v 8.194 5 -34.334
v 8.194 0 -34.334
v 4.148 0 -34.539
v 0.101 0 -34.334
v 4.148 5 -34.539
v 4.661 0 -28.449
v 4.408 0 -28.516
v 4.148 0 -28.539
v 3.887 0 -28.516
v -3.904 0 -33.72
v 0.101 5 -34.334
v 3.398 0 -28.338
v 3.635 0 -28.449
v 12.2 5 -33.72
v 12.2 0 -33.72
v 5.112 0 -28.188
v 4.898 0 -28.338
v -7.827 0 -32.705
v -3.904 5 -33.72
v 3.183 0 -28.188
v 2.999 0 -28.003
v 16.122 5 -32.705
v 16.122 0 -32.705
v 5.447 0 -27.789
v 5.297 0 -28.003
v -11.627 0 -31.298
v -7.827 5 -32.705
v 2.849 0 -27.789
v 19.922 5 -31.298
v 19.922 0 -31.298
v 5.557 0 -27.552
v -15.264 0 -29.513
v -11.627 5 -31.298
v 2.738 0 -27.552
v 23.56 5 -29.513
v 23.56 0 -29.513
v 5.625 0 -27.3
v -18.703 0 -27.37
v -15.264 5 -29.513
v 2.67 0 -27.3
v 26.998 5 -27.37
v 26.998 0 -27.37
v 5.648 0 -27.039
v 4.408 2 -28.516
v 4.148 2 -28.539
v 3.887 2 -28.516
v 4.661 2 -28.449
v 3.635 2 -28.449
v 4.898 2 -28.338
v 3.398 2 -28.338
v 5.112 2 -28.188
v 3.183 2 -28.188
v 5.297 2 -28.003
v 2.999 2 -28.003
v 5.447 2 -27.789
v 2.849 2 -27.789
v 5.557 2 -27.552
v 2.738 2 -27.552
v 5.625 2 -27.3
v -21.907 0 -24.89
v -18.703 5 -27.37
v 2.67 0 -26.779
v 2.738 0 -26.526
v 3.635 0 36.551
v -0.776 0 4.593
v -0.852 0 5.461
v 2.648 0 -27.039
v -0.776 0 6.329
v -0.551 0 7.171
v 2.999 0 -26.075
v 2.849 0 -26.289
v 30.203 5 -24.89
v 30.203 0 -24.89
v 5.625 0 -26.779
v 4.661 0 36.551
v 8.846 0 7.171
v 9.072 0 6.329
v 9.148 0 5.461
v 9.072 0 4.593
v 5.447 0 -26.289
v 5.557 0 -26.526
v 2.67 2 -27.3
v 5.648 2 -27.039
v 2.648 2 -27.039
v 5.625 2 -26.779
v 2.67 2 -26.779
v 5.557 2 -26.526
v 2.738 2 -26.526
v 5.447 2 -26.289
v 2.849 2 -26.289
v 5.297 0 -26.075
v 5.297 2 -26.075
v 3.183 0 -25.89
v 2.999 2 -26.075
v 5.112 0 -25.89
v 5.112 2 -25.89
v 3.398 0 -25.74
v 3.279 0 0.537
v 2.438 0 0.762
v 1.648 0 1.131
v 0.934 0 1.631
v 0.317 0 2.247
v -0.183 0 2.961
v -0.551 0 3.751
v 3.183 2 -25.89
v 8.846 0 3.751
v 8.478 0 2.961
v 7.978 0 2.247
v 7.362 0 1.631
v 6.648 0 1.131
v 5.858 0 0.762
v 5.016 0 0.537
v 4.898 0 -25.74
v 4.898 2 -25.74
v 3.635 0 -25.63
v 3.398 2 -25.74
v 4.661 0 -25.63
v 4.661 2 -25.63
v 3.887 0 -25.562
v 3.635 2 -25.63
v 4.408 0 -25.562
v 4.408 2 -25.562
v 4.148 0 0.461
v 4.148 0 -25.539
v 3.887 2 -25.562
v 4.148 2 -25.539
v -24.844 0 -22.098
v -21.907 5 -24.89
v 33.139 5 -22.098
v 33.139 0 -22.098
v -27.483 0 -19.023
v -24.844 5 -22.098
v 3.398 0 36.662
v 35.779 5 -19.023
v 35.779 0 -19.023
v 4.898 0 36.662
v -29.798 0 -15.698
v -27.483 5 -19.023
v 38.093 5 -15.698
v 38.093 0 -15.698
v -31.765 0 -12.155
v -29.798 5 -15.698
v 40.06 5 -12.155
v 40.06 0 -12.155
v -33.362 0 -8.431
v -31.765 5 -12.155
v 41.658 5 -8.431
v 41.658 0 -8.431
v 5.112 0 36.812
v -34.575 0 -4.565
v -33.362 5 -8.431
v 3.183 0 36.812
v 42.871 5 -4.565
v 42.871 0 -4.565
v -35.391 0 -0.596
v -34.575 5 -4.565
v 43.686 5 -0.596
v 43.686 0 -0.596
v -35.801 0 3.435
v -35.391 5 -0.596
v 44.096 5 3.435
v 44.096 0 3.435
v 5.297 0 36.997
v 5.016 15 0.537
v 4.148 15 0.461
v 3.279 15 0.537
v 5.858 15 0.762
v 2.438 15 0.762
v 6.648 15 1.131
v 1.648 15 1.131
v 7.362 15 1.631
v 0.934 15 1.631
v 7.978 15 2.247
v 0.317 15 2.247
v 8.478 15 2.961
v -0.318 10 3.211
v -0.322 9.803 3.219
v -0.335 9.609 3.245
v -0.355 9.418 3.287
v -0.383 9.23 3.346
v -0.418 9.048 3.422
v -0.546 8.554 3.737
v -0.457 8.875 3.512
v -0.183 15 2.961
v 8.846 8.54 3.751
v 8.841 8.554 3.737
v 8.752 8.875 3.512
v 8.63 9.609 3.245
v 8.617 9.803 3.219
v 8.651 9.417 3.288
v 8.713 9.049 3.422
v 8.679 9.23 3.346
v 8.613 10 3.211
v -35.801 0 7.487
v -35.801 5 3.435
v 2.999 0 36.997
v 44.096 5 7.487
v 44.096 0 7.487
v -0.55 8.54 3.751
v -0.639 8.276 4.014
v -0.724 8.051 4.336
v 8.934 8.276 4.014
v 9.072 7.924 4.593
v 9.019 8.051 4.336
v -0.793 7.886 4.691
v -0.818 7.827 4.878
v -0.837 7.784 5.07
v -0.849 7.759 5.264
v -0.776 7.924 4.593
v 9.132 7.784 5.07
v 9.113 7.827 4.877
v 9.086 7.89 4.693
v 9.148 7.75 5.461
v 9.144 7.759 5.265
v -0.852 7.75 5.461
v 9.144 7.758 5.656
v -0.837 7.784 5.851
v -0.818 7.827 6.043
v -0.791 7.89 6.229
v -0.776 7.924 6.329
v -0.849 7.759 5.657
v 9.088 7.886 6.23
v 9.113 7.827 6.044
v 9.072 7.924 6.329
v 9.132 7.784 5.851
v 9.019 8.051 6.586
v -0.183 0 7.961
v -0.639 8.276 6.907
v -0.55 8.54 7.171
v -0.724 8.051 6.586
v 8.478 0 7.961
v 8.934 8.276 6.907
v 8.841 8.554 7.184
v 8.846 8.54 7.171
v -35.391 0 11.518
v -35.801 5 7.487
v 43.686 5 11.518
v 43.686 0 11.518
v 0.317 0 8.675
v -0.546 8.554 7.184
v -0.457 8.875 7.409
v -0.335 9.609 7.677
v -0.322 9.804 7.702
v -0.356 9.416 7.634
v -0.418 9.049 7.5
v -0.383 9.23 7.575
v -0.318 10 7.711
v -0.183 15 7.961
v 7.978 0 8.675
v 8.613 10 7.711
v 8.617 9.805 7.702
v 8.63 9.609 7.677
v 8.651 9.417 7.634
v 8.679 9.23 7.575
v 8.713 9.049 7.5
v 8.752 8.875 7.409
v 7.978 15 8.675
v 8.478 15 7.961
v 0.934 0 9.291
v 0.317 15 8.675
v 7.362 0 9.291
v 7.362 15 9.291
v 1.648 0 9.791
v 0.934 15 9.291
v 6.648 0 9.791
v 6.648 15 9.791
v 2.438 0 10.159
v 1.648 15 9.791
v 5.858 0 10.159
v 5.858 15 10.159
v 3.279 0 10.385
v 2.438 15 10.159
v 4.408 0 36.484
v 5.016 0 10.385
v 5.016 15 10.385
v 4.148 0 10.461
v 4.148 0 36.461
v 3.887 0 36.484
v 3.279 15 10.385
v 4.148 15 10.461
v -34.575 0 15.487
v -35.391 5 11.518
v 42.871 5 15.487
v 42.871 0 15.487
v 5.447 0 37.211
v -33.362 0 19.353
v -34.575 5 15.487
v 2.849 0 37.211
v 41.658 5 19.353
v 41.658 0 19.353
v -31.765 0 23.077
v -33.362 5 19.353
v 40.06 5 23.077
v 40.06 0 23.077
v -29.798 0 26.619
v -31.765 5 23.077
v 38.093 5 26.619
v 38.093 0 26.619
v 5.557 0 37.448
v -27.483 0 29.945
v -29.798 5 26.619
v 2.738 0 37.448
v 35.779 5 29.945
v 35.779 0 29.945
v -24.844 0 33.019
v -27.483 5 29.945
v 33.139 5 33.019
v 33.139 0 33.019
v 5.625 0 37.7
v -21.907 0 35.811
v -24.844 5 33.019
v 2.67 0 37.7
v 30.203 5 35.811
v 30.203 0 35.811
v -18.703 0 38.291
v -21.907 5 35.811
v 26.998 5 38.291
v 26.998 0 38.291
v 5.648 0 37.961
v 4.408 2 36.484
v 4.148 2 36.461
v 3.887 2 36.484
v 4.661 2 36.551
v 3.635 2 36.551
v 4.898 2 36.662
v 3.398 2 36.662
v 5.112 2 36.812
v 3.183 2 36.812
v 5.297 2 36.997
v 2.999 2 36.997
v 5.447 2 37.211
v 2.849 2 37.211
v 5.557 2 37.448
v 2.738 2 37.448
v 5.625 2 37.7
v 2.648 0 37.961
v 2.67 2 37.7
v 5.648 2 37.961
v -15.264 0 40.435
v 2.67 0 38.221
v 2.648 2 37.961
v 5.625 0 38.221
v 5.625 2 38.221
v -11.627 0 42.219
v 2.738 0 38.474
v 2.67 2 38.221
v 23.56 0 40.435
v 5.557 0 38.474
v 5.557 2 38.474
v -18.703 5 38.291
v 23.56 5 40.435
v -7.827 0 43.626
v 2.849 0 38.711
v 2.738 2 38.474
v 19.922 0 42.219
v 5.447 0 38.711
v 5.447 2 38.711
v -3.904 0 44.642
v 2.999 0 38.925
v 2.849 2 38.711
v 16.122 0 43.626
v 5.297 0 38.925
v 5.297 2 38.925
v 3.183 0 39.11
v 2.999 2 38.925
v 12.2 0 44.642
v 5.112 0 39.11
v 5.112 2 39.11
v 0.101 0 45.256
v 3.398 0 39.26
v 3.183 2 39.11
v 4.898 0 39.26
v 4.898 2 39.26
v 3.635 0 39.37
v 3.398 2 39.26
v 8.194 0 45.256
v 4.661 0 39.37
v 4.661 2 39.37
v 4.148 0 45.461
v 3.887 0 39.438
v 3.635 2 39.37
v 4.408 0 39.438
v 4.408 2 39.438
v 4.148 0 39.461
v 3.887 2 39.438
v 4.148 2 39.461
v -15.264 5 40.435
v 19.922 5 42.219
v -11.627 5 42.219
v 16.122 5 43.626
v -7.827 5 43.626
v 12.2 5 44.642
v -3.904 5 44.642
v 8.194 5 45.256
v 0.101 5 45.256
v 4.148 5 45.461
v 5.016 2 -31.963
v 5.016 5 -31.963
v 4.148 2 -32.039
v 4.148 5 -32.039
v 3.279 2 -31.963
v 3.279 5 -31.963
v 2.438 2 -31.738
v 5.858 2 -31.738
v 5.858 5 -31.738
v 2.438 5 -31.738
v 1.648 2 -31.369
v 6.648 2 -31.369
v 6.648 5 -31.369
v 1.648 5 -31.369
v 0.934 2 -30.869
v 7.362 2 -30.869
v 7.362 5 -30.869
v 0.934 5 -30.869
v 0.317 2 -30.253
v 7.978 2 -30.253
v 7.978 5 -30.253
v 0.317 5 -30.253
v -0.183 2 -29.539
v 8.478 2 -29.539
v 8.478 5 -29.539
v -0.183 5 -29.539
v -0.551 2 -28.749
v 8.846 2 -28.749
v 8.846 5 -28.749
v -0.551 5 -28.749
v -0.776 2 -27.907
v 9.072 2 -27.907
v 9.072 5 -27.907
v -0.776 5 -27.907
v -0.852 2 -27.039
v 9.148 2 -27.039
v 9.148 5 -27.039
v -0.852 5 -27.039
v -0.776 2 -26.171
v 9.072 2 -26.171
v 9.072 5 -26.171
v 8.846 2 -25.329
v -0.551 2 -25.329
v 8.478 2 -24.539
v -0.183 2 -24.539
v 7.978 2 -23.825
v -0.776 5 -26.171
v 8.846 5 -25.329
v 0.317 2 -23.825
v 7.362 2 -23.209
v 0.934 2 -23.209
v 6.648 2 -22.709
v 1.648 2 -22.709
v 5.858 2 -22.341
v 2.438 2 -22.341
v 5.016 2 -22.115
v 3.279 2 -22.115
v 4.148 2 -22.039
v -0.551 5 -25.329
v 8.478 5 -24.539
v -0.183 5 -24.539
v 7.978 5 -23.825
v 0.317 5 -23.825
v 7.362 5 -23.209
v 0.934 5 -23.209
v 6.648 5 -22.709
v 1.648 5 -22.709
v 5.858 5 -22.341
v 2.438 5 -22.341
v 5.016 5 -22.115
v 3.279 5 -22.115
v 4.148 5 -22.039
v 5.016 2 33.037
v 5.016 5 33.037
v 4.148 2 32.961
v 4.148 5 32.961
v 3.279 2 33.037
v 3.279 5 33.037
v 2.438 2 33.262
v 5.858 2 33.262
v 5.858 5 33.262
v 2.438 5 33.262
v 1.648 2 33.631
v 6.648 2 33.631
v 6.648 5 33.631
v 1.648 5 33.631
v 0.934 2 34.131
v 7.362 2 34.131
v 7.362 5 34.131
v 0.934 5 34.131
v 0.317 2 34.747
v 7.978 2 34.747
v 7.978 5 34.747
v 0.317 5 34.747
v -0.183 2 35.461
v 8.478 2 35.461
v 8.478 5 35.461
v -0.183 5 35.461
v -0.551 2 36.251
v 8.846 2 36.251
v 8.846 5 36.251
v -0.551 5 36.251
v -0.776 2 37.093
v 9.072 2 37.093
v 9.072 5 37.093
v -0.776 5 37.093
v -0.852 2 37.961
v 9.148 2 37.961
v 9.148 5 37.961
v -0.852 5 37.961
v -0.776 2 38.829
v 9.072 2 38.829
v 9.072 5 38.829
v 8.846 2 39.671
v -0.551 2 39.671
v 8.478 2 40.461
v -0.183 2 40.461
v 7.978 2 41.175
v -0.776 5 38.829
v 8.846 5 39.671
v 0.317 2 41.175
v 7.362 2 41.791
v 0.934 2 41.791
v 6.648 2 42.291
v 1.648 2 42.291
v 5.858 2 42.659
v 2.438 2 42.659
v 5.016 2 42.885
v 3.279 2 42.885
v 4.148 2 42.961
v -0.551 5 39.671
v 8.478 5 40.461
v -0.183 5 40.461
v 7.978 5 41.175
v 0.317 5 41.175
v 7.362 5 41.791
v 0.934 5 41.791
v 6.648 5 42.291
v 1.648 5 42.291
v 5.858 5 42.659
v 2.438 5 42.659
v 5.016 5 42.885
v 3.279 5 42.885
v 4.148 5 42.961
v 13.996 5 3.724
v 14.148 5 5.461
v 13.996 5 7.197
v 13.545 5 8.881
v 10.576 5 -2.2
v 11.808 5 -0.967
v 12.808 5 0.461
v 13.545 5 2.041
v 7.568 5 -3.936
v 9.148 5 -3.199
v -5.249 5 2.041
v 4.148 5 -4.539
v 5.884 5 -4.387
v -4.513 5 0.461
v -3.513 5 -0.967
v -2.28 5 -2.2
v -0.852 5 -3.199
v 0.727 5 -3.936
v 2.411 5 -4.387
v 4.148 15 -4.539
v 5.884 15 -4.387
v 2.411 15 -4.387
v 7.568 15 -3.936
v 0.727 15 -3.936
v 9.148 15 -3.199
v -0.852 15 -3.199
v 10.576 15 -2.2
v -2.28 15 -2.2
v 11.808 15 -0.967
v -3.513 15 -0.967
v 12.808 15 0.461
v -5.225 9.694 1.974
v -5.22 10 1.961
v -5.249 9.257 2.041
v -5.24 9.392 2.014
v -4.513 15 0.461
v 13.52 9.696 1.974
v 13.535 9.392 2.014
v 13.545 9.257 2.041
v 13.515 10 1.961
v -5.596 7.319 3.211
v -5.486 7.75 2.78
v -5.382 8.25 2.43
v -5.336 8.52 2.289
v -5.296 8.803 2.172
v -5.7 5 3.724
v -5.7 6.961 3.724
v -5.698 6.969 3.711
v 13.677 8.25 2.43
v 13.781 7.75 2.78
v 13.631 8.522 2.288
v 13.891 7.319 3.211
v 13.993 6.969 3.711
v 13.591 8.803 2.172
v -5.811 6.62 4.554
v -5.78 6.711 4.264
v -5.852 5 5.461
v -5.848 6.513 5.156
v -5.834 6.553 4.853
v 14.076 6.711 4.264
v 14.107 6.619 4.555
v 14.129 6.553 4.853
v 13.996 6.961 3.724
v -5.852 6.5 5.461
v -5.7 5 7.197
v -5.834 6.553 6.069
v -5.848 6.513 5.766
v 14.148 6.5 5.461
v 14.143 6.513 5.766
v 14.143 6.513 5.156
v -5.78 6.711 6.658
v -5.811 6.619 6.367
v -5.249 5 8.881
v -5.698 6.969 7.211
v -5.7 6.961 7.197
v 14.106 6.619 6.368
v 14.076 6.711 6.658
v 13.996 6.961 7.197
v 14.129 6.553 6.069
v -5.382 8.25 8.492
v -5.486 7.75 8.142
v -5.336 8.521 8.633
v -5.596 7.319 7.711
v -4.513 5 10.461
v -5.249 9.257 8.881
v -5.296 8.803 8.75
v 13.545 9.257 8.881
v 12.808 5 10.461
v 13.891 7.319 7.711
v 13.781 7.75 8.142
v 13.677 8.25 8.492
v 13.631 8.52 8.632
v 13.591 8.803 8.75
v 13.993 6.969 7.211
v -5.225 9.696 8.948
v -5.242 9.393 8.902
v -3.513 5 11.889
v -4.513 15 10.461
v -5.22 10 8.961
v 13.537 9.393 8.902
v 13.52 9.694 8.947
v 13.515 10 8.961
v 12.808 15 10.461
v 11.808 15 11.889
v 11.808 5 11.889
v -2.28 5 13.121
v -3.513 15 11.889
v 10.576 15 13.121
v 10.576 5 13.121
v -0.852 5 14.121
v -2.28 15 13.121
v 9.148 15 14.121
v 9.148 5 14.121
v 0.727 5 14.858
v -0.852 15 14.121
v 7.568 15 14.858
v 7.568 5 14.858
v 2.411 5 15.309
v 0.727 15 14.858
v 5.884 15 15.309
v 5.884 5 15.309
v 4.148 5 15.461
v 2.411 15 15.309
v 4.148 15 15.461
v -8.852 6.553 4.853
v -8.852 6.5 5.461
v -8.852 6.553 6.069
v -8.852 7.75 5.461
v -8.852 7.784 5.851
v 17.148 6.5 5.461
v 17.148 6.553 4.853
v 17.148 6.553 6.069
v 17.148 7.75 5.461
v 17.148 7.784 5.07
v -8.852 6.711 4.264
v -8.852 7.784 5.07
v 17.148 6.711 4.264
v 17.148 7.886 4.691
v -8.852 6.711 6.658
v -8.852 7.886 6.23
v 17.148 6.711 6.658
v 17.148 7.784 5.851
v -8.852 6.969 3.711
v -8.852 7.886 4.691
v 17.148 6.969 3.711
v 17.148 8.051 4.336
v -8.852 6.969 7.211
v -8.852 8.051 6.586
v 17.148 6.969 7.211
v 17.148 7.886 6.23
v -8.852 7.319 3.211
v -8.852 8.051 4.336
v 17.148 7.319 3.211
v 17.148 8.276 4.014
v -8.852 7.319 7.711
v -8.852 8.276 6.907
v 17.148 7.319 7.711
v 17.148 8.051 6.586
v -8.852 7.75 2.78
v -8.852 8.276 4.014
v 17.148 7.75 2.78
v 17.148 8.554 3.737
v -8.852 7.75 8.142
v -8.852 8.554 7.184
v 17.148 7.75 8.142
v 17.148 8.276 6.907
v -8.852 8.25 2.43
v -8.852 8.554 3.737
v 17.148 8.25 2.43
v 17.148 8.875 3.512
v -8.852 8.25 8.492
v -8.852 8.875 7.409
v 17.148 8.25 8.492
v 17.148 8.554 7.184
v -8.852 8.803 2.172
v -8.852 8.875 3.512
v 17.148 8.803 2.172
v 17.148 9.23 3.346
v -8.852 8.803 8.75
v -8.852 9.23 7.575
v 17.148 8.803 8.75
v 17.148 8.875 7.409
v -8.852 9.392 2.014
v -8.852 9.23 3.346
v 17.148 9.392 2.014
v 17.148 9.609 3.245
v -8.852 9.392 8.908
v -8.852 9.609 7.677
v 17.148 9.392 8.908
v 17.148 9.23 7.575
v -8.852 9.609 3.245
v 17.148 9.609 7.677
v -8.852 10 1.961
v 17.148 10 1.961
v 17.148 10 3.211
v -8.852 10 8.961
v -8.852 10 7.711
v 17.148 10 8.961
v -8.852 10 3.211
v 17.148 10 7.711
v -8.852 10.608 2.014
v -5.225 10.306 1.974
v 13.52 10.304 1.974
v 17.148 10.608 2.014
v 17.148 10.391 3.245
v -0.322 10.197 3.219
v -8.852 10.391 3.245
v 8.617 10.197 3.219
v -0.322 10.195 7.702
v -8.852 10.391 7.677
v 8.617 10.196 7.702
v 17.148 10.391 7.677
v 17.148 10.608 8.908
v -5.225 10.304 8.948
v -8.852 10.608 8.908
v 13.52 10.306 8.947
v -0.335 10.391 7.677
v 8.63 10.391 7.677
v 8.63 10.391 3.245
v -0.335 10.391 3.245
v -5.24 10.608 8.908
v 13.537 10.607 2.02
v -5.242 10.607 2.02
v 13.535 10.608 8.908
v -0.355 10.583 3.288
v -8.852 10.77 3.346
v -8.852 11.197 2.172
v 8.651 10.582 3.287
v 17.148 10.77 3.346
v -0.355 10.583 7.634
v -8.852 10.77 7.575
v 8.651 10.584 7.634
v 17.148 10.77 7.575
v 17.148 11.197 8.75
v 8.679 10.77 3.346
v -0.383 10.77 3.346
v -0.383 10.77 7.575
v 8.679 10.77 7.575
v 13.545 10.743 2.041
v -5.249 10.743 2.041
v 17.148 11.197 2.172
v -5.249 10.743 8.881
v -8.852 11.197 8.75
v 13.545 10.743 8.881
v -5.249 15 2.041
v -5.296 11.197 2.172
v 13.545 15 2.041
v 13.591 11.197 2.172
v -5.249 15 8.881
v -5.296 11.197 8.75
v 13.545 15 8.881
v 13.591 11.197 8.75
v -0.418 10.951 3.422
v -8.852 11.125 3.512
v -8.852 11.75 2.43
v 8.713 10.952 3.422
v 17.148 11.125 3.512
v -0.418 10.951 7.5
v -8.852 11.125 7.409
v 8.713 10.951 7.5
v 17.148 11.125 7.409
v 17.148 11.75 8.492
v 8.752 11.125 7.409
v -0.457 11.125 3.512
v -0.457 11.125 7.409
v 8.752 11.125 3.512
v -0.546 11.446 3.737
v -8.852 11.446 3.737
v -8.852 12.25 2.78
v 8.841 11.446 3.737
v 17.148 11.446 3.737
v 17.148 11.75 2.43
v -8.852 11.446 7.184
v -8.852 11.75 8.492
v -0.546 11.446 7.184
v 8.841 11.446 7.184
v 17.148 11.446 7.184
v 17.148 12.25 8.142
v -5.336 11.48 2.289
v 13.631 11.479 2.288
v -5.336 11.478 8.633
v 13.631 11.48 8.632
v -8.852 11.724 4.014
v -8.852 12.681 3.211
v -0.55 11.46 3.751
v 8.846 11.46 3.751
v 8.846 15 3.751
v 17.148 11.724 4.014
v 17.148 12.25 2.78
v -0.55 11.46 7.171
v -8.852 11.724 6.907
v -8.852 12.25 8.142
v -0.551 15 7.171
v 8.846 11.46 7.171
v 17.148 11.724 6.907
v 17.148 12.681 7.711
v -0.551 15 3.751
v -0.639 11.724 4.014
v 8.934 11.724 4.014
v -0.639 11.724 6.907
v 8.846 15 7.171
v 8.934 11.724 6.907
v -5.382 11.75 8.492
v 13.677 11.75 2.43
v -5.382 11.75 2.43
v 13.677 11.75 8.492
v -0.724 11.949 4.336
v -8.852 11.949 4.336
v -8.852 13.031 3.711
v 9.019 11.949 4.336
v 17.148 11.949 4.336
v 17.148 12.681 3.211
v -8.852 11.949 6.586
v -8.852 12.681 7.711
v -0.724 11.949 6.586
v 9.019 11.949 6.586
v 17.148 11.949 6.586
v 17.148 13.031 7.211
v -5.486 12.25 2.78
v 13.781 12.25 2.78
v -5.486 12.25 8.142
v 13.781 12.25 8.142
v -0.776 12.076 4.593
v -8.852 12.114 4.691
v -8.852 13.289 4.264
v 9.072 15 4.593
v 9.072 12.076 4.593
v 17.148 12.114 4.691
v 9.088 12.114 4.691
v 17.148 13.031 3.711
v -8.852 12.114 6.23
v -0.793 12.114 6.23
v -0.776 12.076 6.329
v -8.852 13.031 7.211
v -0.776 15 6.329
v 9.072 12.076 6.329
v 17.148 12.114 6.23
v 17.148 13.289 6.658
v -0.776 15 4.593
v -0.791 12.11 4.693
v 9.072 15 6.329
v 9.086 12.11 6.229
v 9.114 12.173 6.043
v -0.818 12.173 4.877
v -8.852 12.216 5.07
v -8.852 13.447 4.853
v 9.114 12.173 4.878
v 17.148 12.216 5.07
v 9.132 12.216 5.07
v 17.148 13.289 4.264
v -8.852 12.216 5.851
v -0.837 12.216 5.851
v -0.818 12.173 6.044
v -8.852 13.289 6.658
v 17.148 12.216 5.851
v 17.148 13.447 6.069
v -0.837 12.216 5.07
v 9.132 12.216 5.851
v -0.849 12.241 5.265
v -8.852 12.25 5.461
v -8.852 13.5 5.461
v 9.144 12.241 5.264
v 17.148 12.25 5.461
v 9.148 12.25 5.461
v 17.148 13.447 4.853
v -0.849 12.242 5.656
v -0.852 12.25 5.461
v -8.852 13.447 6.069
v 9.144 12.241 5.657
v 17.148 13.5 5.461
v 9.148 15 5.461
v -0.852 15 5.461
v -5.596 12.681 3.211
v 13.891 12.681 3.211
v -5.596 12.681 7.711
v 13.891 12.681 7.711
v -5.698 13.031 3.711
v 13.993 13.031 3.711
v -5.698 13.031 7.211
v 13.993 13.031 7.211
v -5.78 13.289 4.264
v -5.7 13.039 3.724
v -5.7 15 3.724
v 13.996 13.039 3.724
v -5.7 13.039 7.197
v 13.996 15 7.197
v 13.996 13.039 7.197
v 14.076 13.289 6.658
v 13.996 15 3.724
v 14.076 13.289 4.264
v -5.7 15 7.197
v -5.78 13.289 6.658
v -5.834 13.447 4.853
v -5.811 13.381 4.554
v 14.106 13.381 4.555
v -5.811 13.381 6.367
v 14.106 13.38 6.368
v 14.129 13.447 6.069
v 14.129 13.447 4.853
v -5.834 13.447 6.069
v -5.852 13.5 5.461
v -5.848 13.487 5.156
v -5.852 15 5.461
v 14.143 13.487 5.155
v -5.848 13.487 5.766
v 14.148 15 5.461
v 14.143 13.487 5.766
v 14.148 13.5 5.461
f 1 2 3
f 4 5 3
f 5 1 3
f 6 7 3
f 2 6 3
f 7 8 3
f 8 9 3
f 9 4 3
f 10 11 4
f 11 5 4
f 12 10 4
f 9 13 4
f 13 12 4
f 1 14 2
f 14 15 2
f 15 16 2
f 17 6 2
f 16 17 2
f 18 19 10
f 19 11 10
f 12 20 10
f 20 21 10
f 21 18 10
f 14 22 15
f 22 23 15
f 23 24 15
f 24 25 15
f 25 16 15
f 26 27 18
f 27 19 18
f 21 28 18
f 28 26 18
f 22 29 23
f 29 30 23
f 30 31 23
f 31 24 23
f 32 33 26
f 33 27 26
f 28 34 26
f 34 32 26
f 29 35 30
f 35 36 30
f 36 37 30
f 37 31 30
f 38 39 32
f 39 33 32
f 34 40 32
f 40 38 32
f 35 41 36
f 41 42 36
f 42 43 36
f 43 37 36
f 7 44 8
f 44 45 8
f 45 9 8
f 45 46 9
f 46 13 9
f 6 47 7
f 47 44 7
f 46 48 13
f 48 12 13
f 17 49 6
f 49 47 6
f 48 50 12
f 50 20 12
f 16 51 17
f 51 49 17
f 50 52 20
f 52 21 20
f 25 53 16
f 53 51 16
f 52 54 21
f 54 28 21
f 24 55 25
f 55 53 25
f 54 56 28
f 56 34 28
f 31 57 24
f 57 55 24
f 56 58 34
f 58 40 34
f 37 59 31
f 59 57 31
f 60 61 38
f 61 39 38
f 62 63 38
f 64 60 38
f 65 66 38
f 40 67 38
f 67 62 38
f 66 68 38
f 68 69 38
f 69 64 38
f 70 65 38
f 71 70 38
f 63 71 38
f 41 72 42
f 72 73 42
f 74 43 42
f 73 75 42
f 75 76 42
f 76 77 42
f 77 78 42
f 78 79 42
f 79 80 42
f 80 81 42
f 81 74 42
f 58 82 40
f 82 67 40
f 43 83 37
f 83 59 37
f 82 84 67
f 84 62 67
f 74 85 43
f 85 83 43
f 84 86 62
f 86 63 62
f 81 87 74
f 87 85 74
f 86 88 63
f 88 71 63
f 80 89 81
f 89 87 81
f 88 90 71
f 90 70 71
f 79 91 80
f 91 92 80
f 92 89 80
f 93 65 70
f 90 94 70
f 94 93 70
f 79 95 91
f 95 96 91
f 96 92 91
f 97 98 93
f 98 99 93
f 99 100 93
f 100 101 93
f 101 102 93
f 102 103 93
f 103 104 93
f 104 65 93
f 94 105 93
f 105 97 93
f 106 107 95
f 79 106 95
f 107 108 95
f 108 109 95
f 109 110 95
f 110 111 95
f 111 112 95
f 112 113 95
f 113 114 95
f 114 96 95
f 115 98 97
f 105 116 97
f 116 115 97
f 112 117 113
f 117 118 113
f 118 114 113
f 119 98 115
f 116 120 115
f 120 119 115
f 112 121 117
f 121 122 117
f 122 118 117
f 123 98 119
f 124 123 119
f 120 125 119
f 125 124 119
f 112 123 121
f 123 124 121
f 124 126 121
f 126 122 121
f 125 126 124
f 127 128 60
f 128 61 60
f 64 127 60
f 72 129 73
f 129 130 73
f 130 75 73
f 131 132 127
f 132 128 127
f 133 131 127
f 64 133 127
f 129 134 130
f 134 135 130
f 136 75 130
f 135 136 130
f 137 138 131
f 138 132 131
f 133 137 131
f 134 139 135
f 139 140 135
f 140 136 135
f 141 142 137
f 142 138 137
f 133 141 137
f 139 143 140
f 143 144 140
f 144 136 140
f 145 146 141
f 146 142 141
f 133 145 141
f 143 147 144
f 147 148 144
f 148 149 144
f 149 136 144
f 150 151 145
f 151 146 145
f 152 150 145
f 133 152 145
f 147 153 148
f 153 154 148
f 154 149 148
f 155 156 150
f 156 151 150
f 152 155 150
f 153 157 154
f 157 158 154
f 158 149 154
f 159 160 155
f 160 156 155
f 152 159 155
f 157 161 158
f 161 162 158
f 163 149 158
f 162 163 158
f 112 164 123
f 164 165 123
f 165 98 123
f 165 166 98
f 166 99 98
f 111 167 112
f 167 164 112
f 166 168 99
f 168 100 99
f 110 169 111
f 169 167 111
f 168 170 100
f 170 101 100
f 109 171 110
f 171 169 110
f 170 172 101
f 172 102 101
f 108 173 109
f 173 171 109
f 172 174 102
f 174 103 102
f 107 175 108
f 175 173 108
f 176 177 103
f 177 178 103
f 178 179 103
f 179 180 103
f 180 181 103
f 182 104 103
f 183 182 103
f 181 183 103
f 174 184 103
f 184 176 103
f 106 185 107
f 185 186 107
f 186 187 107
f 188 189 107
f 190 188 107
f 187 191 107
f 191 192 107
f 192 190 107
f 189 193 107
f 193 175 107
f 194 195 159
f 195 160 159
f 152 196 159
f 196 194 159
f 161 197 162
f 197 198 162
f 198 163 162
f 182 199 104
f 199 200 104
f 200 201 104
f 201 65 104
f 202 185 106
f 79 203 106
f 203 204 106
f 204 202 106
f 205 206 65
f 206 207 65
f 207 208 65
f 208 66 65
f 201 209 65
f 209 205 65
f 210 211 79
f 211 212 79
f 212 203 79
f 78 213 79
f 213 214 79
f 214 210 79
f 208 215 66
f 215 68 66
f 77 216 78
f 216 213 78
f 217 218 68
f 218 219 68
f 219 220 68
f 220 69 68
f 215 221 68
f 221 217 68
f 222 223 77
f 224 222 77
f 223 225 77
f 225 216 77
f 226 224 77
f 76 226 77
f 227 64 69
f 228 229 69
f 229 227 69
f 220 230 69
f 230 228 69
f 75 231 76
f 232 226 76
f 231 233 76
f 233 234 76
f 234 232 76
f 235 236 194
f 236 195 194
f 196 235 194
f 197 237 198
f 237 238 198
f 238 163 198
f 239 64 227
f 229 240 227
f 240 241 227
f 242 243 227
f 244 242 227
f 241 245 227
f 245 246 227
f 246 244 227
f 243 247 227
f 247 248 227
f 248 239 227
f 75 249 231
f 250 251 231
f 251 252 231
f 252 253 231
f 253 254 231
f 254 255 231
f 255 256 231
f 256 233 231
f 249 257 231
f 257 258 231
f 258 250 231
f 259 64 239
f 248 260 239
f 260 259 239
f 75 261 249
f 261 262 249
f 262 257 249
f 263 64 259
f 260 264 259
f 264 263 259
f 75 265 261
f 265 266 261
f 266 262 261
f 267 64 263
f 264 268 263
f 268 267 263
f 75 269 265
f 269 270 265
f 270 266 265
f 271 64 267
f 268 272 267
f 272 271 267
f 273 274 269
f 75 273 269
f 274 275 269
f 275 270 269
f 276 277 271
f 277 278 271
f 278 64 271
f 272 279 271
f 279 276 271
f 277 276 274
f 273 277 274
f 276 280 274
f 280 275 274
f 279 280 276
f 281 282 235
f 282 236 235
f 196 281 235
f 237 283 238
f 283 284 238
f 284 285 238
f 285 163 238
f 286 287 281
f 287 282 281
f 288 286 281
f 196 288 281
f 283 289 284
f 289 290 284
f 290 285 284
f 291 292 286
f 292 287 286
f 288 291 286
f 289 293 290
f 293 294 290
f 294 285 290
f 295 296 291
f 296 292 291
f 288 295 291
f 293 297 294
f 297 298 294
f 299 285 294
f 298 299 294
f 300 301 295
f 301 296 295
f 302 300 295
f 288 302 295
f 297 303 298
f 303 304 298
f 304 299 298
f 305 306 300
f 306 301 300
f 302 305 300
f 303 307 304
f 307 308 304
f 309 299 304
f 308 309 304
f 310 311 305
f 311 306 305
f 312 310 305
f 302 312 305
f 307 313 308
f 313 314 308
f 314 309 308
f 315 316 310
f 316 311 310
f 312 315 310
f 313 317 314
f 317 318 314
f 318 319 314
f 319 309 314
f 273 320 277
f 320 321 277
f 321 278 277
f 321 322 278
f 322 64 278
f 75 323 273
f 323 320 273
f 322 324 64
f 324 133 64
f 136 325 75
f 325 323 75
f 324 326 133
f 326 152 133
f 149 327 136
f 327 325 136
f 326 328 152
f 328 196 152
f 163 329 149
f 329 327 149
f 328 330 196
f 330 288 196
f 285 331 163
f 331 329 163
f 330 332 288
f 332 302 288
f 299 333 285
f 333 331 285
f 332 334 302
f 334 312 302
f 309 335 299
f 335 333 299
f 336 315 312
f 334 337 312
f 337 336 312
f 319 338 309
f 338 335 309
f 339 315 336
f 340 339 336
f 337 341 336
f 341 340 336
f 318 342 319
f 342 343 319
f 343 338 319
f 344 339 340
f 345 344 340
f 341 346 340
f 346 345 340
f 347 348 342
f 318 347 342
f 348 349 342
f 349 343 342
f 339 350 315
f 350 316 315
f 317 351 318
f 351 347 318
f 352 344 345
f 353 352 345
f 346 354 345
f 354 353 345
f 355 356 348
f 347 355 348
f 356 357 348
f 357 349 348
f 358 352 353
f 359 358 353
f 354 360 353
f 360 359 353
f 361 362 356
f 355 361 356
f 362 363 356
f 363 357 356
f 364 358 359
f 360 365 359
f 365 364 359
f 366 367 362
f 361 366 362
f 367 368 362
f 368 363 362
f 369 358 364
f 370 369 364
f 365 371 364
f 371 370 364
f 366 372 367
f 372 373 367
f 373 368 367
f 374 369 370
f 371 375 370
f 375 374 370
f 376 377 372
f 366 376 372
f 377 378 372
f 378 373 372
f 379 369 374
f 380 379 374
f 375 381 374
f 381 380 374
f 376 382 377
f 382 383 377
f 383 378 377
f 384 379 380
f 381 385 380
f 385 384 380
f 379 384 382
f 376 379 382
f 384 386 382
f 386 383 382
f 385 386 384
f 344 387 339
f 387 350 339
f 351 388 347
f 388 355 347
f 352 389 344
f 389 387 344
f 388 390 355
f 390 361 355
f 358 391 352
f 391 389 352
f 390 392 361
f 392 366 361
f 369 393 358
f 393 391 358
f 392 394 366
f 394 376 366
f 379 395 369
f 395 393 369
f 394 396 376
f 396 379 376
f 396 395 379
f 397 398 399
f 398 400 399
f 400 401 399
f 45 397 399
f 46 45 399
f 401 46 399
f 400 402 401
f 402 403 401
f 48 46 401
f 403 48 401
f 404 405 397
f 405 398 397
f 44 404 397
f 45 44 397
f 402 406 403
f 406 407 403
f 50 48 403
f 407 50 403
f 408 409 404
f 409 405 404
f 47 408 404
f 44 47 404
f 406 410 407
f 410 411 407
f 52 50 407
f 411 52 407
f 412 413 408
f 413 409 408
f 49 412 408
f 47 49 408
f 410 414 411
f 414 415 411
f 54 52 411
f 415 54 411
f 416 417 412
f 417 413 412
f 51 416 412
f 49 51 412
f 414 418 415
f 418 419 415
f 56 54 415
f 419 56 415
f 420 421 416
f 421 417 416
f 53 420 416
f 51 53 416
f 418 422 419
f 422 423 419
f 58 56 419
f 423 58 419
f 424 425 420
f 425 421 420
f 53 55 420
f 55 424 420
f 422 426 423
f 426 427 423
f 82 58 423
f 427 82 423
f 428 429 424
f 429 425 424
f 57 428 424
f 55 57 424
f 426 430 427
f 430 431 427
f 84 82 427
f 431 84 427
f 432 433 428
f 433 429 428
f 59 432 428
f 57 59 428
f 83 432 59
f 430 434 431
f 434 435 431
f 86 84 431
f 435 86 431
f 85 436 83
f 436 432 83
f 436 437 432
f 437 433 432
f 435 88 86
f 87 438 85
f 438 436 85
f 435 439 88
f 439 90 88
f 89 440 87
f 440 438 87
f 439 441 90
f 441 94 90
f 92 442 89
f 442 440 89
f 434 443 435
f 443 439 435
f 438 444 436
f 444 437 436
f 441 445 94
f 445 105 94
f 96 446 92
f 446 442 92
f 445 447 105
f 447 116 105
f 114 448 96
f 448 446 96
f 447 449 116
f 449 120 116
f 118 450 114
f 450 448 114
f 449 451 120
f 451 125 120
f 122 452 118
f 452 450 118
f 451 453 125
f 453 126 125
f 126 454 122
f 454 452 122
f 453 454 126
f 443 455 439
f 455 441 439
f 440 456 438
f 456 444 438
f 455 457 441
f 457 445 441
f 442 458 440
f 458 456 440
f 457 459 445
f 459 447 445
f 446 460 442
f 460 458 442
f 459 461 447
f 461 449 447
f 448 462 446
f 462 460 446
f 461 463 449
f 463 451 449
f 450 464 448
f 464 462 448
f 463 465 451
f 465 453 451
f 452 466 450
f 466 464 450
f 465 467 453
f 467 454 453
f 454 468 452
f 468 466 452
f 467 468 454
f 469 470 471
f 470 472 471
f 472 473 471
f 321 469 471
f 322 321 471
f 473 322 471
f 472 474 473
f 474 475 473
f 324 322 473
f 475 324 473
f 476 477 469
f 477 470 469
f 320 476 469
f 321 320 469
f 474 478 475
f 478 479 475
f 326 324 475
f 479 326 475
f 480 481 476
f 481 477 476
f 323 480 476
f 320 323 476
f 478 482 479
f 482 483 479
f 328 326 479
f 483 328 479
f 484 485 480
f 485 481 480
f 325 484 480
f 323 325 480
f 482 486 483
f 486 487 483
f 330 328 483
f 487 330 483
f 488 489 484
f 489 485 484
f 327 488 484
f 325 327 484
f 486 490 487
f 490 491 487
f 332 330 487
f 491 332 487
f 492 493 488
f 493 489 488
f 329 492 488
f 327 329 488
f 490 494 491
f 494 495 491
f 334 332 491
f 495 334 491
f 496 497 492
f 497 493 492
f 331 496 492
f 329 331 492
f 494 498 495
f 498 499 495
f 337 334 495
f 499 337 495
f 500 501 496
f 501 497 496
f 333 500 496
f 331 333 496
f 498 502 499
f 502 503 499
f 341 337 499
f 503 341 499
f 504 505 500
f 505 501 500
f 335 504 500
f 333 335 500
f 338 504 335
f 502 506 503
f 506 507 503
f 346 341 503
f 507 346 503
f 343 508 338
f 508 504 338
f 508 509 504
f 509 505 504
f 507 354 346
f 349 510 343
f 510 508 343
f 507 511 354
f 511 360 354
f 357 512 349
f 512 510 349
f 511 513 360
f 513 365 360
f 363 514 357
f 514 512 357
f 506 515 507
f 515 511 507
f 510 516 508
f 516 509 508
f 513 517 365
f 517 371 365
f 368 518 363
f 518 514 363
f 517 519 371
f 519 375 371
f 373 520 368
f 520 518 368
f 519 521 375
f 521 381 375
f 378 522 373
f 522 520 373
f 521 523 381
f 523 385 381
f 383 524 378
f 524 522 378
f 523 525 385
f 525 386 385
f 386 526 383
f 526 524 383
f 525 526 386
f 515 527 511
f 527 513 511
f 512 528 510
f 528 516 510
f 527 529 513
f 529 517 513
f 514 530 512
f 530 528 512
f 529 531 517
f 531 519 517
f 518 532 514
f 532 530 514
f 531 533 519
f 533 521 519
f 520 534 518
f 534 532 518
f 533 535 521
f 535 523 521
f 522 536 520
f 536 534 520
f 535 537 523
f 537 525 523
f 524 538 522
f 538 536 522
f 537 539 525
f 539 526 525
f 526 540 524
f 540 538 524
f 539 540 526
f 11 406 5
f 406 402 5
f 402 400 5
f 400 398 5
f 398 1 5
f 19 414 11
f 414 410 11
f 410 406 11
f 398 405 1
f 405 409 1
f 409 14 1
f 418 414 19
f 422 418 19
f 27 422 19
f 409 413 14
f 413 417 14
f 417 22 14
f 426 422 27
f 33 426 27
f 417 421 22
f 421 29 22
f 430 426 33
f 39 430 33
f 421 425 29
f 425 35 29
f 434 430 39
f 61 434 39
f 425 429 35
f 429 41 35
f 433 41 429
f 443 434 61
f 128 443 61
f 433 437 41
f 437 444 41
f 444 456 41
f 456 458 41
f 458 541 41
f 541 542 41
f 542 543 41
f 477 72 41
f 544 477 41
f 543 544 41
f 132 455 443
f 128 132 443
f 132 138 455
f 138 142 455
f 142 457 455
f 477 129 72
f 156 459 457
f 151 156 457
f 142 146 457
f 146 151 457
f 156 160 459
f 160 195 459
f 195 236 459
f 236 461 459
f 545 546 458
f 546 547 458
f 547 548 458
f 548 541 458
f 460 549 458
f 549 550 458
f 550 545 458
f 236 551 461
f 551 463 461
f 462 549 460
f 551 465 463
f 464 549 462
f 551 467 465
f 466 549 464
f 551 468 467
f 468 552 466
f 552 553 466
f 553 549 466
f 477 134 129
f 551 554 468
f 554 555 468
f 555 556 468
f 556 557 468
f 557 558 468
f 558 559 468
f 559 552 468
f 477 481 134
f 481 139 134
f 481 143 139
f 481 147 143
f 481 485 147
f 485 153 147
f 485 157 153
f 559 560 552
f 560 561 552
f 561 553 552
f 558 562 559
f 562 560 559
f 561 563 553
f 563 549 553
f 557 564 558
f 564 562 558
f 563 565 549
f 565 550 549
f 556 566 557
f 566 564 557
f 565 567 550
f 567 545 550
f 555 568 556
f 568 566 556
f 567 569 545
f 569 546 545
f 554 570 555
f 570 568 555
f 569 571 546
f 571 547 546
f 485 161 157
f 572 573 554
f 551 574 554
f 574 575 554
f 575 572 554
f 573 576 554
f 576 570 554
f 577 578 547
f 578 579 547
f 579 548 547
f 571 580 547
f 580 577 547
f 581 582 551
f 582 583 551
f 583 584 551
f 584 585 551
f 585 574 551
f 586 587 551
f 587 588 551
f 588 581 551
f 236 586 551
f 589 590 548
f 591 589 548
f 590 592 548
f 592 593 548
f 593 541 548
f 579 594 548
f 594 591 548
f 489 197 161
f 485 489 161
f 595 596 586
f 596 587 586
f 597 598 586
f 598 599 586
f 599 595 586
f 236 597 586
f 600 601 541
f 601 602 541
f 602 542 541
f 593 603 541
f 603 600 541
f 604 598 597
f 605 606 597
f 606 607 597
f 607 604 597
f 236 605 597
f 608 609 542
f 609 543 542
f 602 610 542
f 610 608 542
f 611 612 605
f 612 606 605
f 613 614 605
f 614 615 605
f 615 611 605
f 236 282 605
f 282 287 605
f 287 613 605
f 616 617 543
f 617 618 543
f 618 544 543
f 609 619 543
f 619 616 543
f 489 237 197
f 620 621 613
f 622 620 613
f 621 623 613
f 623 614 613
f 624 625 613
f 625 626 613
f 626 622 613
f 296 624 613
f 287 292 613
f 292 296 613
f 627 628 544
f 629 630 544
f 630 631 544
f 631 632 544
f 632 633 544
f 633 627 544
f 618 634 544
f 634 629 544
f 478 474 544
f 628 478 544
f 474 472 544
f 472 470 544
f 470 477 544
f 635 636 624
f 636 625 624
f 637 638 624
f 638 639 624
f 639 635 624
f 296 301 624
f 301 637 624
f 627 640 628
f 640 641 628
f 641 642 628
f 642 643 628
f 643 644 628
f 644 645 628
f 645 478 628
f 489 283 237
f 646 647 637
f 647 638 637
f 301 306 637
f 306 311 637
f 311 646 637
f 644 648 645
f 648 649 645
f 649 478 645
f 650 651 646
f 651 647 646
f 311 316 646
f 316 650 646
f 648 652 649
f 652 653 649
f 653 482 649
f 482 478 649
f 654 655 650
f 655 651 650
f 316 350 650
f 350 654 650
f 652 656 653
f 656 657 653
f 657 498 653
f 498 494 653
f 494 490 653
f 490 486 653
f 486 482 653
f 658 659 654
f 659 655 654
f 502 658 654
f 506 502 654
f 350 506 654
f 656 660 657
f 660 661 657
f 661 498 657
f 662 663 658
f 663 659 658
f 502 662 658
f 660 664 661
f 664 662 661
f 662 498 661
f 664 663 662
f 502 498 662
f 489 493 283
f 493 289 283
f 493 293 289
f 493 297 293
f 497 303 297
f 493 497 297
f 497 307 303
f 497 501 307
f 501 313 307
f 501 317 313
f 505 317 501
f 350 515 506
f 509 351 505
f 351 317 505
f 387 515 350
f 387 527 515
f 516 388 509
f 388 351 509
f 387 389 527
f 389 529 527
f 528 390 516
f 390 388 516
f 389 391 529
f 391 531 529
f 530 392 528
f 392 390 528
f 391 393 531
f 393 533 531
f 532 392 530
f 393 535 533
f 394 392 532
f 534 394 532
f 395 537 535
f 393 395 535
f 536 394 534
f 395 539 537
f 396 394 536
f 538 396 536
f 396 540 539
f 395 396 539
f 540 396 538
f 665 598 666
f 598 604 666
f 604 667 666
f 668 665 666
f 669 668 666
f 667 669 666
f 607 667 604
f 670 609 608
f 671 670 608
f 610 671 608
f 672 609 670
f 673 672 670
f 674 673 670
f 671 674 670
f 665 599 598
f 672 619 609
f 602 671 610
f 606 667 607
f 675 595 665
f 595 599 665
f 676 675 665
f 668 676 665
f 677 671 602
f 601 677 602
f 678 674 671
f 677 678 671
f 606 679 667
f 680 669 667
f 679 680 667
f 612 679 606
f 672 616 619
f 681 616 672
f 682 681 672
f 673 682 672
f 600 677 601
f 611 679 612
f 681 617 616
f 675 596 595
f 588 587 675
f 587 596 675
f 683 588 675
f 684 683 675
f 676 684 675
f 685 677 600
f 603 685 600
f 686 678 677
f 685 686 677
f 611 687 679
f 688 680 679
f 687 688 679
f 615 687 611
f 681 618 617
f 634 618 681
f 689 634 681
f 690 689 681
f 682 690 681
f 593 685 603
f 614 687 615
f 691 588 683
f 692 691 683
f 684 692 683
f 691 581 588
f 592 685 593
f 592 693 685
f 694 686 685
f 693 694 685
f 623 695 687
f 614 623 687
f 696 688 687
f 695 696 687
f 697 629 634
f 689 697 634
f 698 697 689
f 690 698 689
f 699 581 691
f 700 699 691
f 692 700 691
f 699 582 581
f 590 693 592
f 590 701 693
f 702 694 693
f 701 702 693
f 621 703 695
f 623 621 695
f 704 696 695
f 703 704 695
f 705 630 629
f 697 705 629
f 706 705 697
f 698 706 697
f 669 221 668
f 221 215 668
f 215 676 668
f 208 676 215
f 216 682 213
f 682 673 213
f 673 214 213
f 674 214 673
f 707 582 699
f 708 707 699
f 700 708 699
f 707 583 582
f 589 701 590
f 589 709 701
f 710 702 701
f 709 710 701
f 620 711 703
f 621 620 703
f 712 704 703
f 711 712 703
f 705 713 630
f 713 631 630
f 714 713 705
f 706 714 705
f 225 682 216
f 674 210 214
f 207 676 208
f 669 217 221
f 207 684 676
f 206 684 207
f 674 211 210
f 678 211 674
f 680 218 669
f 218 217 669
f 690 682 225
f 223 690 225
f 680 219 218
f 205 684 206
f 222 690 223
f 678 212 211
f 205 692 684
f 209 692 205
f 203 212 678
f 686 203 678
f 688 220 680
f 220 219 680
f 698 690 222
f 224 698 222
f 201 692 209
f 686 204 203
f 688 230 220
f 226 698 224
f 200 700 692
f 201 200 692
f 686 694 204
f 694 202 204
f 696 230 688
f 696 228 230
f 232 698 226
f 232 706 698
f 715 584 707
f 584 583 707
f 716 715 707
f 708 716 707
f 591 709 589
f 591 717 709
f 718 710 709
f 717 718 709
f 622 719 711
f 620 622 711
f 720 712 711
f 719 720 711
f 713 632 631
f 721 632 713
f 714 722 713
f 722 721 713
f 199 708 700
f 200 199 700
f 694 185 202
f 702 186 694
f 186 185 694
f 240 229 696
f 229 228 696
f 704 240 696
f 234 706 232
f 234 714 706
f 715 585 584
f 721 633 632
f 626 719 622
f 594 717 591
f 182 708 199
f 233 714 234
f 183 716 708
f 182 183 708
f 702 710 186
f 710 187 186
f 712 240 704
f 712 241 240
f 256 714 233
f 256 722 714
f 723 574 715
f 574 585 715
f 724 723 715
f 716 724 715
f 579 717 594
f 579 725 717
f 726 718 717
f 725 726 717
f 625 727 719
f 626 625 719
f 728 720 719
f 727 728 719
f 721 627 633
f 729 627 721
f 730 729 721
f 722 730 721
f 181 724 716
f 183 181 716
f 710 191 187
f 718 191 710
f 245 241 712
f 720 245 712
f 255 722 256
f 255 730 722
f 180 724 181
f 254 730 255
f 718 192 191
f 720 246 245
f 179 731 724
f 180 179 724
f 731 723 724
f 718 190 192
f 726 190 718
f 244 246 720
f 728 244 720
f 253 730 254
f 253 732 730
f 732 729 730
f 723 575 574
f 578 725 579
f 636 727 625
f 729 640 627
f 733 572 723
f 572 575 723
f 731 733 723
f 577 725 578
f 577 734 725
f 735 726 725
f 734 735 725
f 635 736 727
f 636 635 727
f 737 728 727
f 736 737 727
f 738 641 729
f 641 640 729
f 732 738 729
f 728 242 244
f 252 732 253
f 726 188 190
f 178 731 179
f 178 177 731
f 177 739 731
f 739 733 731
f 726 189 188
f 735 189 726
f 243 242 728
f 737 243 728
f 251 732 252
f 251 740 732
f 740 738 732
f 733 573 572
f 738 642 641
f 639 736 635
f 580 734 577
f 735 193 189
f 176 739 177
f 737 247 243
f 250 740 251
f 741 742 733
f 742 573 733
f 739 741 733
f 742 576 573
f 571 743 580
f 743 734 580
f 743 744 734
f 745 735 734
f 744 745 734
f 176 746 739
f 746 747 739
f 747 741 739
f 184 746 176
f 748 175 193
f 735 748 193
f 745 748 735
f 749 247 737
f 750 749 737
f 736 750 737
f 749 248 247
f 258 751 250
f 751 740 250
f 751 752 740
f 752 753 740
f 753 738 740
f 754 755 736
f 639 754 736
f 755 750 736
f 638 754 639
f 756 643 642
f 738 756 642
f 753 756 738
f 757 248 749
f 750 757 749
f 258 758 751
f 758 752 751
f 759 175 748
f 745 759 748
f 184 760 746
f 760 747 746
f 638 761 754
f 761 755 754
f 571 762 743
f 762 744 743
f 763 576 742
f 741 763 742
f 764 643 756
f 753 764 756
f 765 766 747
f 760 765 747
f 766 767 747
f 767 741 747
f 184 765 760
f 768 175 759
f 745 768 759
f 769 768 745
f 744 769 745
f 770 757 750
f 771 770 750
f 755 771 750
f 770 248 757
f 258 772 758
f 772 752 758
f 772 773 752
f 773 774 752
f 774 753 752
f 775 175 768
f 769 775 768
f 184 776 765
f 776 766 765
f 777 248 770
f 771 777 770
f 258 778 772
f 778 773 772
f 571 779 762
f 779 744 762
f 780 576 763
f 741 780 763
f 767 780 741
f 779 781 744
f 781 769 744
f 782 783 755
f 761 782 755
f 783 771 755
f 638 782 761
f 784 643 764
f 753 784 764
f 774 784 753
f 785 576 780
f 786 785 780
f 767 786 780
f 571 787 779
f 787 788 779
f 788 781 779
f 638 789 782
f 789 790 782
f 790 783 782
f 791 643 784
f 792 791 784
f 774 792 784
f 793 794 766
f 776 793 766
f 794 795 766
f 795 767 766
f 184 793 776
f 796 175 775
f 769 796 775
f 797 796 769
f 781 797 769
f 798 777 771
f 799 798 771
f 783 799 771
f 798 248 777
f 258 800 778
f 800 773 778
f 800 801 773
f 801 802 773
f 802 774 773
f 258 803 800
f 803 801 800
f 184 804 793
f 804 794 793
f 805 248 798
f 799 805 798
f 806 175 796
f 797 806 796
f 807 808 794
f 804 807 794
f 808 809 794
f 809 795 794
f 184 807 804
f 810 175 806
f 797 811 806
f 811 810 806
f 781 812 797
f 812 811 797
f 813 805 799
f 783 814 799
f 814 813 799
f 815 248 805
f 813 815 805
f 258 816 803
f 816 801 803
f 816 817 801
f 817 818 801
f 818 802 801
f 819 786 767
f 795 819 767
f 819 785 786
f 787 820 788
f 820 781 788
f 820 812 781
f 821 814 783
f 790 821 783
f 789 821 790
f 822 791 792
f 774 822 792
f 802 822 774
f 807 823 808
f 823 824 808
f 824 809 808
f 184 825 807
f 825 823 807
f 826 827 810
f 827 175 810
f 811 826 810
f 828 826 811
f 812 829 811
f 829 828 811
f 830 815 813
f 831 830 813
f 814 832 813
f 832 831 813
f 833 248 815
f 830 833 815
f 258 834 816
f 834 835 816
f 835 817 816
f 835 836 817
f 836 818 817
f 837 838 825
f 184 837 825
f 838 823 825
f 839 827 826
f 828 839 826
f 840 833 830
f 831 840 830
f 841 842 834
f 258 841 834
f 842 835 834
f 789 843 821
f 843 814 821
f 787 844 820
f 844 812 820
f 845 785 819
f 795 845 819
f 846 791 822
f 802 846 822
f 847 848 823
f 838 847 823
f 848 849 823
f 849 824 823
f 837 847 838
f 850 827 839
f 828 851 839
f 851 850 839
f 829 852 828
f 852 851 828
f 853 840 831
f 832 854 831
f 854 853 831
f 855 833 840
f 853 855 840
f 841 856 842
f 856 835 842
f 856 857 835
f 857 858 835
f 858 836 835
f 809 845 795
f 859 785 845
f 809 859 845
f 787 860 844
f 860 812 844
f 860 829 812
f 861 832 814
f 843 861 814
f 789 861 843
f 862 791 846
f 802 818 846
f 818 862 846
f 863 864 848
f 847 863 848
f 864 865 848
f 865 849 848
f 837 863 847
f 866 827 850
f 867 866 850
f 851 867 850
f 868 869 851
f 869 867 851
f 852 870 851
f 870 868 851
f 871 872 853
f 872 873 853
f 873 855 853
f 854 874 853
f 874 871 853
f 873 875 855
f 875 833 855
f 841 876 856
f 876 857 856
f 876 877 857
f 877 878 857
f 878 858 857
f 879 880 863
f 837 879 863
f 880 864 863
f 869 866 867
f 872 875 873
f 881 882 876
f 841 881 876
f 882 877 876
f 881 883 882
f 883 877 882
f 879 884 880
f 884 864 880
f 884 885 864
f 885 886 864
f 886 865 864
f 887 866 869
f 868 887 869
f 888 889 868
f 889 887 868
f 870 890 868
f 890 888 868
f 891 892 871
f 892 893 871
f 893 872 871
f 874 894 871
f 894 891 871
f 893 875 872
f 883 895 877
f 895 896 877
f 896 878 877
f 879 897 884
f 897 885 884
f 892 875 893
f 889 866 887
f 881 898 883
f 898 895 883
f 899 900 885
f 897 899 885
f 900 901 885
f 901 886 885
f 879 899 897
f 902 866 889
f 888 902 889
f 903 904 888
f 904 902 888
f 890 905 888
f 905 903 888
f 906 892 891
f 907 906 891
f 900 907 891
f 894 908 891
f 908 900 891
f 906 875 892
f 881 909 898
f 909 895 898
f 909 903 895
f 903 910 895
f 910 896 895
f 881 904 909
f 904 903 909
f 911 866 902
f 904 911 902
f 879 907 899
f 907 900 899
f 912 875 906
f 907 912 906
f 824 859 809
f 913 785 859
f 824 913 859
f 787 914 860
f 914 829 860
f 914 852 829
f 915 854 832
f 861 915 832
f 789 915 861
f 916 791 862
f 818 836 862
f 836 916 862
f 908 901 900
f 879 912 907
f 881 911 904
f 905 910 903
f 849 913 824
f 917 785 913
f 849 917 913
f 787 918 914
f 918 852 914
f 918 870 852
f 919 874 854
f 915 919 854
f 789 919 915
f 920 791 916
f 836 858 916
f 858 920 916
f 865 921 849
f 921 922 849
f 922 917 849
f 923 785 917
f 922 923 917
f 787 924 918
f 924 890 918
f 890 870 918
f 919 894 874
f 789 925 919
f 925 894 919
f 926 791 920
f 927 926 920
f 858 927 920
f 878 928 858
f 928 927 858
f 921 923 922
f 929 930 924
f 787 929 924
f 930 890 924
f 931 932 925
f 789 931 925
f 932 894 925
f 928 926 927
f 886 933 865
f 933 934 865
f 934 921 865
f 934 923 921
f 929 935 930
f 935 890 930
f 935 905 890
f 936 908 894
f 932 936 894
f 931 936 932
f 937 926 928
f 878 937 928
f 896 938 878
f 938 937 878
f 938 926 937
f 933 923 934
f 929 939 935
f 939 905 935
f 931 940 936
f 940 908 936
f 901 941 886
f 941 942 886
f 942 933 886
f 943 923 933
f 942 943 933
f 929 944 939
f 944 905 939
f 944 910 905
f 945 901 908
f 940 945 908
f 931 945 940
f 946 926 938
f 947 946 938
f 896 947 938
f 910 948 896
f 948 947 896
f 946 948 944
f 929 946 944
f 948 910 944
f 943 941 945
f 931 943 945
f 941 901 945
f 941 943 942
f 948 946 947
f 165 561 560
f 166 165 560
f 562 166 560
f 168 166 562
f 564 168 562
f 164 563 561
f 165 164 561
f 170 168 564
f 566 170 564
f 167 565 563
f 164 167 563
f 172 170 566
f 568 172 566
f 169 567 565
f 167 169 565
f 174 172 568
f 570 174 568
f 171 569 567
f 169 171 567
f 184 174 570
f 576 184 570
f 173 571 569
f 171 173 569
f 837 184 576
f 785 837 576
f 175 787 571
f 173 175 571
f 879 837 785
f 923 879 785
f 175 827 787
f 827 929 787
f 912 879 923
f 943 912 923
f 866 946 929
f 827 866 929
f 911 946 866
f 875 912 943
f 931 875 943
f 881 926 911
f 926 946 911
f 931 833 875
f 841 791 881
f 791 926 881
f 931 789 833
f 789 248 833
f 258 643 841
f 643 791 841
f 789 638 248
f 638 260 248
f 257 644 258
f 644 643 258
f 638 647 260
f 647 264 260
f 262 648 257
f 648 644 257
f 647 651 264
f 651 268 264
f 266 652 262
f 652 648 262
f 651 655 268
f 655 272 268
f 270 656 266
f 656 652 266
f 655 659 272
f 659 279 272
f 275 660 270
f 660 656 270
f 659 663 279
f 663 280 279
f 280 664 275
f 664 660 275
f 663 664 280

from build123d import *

# Parameters (mm, degrees)
SKETCH1_R           = 40
BOSS_EXTRUDE1_DEPTH = 5
SKETCH2_R           = 5
CUT_EXTRUDE1_DEPTH  = 15
SKETCH3_R           = 5
CUT_EXTRUDE2_DEPTH  = 3
SKETCH5_R           = 1.5
CUT_EXTRUDE3_DEPTH  = 33
BOSS_EXTRUDE2_START = 10
SKETCH6_R           = 10
SKETCH6_R_2         = 5
BOSS_EXTRUDE2_DEPTH = 10
SKETCH10_R          = 2.25
CUT_EXTRUDE4_DEPTH  = 45
BOSS_EXTRUDE3_START = 8
SKETCH11_R          = 3.5
SKETCH11_R_2        = 2.25
BOSS_EXTRUDE3_DEPTH = 8


with BuildPart() as part:
    # Sketch1 → Boss-Extrude1 (new body)
    with BuildSketch(Plane(origin=(0, 0, 0), x_dir=(1, 0, 0), z_dir=(0, 1, 0))):
        with Locations((4.147627533, -5.460766911)):
            Circle(SKETCH1_R)
    extrude(amount=BOSS_EXTRUDE1_DEPTH)

    # Sketch2 → Cut-Extrude1 (cut)
    with BuildSketch(Plane(origin=(0, 5, 0), x_dir=(1, 0, 0), z_dir=(0, 1, 0))):
        with Locations((4.147627533, -5.460766911)):
            Circle(SKETCH2_R)
    extrude(amount=-CUT_EXTRUDE1_DEPTH, mode=Mode.SUBTRACT)

    # Sketch3 → Cut-Extrude2 (cut)
    with BuildSketch(Plane(origin=(0, 5, 0), x_dir=(1, 0, 0), z_dir=(0, 1, 0))):
        with Locations((4.147627533, 27.039233089)):
            Circle(SKETCH3_R)
        with Locations((4.147627533, -37.960766911)):
            Circle(SKETCH3_R)
    extrude(amount=-CUT_EXTRUDE2_DEPTH, mode=Mode.SUBTRACT)

    # Sketch5 → Cut-Extrude3 (cut)
    with BuildSketch(Plane(origin=(0, 2, 0), x_dir=(1, 0, 0), z_dir=(0, 1, 0))):
        with Locations((4.147627533, -37.960766911)):
            Circle(SKETCH5_R)
        with Locations((4.147627533, 27.039233089)):
            Circle(SKETCH5_R)
    extrude(amount=-CUT_EXTRUDE3_DEPTH, mode=Mode.SUBTRACT)

    # Sketch6 → Boss-Extrude2 (add)
    with BuildSketch(Plane(origin=(0, 5, 0), x_dir=(1, 0, 0), z_dir=(0, 1, 0)).offset(BOSS_EXTRUDE2_START)):
        with Locations((4.147627533, -5.460766911)):
            Circle(SKETCH6_R)
        with Locations((4.147627533, -5.460766911)):
            Circle(SKETCH6_R_2, mode=Mode.SUBTRACT)
    extrude(amount=-BOSS_EXTRUDE2_DEPTH)

    # Sketch10 → Cut-Extrude4 (cut, symmetric)
    with BuildSketch(Plane(origin=(4.147627533, 0, 5.460766911), x_dir=(0, 0, -1), z_dir=(1, 0, 0))):
        with Locations((0, 10)):
            Circle(SKETCH10_R)
    extrude(amount=CUT_EXTRUDE4_DEPTH, both=True, mode=Mode.SUBTRACT)

    # Sketch11 → Boss-Extrude3 (add)
    with BuildSketch(Plane(origin=(9.147627533, 0, 5.460766911), x_dir=(0, 0, -1), z_dir=(1, 0, 0)).offset(BOSS_EXTRUDE3_START)):
        with Locations((0, 10)):
            Circle(SKETCH11_R)
        with Locations((0, 10)):
            Circle(SKETCH11_R_2, mode=Mode.SUBTRACT)
    boss_extrude3 = extrude(amount=-BOSS_EXTRUDE3_DEPTH)

    # Mirror1: Boss-Extrude3 across plane
    add(boss_extrude3.mirror(Plane(origin=(4.147627533, 0, 5.460766911), x_dir=(0, 0, 1), z_dir=(1, 0, 0))))


solid = part.part
